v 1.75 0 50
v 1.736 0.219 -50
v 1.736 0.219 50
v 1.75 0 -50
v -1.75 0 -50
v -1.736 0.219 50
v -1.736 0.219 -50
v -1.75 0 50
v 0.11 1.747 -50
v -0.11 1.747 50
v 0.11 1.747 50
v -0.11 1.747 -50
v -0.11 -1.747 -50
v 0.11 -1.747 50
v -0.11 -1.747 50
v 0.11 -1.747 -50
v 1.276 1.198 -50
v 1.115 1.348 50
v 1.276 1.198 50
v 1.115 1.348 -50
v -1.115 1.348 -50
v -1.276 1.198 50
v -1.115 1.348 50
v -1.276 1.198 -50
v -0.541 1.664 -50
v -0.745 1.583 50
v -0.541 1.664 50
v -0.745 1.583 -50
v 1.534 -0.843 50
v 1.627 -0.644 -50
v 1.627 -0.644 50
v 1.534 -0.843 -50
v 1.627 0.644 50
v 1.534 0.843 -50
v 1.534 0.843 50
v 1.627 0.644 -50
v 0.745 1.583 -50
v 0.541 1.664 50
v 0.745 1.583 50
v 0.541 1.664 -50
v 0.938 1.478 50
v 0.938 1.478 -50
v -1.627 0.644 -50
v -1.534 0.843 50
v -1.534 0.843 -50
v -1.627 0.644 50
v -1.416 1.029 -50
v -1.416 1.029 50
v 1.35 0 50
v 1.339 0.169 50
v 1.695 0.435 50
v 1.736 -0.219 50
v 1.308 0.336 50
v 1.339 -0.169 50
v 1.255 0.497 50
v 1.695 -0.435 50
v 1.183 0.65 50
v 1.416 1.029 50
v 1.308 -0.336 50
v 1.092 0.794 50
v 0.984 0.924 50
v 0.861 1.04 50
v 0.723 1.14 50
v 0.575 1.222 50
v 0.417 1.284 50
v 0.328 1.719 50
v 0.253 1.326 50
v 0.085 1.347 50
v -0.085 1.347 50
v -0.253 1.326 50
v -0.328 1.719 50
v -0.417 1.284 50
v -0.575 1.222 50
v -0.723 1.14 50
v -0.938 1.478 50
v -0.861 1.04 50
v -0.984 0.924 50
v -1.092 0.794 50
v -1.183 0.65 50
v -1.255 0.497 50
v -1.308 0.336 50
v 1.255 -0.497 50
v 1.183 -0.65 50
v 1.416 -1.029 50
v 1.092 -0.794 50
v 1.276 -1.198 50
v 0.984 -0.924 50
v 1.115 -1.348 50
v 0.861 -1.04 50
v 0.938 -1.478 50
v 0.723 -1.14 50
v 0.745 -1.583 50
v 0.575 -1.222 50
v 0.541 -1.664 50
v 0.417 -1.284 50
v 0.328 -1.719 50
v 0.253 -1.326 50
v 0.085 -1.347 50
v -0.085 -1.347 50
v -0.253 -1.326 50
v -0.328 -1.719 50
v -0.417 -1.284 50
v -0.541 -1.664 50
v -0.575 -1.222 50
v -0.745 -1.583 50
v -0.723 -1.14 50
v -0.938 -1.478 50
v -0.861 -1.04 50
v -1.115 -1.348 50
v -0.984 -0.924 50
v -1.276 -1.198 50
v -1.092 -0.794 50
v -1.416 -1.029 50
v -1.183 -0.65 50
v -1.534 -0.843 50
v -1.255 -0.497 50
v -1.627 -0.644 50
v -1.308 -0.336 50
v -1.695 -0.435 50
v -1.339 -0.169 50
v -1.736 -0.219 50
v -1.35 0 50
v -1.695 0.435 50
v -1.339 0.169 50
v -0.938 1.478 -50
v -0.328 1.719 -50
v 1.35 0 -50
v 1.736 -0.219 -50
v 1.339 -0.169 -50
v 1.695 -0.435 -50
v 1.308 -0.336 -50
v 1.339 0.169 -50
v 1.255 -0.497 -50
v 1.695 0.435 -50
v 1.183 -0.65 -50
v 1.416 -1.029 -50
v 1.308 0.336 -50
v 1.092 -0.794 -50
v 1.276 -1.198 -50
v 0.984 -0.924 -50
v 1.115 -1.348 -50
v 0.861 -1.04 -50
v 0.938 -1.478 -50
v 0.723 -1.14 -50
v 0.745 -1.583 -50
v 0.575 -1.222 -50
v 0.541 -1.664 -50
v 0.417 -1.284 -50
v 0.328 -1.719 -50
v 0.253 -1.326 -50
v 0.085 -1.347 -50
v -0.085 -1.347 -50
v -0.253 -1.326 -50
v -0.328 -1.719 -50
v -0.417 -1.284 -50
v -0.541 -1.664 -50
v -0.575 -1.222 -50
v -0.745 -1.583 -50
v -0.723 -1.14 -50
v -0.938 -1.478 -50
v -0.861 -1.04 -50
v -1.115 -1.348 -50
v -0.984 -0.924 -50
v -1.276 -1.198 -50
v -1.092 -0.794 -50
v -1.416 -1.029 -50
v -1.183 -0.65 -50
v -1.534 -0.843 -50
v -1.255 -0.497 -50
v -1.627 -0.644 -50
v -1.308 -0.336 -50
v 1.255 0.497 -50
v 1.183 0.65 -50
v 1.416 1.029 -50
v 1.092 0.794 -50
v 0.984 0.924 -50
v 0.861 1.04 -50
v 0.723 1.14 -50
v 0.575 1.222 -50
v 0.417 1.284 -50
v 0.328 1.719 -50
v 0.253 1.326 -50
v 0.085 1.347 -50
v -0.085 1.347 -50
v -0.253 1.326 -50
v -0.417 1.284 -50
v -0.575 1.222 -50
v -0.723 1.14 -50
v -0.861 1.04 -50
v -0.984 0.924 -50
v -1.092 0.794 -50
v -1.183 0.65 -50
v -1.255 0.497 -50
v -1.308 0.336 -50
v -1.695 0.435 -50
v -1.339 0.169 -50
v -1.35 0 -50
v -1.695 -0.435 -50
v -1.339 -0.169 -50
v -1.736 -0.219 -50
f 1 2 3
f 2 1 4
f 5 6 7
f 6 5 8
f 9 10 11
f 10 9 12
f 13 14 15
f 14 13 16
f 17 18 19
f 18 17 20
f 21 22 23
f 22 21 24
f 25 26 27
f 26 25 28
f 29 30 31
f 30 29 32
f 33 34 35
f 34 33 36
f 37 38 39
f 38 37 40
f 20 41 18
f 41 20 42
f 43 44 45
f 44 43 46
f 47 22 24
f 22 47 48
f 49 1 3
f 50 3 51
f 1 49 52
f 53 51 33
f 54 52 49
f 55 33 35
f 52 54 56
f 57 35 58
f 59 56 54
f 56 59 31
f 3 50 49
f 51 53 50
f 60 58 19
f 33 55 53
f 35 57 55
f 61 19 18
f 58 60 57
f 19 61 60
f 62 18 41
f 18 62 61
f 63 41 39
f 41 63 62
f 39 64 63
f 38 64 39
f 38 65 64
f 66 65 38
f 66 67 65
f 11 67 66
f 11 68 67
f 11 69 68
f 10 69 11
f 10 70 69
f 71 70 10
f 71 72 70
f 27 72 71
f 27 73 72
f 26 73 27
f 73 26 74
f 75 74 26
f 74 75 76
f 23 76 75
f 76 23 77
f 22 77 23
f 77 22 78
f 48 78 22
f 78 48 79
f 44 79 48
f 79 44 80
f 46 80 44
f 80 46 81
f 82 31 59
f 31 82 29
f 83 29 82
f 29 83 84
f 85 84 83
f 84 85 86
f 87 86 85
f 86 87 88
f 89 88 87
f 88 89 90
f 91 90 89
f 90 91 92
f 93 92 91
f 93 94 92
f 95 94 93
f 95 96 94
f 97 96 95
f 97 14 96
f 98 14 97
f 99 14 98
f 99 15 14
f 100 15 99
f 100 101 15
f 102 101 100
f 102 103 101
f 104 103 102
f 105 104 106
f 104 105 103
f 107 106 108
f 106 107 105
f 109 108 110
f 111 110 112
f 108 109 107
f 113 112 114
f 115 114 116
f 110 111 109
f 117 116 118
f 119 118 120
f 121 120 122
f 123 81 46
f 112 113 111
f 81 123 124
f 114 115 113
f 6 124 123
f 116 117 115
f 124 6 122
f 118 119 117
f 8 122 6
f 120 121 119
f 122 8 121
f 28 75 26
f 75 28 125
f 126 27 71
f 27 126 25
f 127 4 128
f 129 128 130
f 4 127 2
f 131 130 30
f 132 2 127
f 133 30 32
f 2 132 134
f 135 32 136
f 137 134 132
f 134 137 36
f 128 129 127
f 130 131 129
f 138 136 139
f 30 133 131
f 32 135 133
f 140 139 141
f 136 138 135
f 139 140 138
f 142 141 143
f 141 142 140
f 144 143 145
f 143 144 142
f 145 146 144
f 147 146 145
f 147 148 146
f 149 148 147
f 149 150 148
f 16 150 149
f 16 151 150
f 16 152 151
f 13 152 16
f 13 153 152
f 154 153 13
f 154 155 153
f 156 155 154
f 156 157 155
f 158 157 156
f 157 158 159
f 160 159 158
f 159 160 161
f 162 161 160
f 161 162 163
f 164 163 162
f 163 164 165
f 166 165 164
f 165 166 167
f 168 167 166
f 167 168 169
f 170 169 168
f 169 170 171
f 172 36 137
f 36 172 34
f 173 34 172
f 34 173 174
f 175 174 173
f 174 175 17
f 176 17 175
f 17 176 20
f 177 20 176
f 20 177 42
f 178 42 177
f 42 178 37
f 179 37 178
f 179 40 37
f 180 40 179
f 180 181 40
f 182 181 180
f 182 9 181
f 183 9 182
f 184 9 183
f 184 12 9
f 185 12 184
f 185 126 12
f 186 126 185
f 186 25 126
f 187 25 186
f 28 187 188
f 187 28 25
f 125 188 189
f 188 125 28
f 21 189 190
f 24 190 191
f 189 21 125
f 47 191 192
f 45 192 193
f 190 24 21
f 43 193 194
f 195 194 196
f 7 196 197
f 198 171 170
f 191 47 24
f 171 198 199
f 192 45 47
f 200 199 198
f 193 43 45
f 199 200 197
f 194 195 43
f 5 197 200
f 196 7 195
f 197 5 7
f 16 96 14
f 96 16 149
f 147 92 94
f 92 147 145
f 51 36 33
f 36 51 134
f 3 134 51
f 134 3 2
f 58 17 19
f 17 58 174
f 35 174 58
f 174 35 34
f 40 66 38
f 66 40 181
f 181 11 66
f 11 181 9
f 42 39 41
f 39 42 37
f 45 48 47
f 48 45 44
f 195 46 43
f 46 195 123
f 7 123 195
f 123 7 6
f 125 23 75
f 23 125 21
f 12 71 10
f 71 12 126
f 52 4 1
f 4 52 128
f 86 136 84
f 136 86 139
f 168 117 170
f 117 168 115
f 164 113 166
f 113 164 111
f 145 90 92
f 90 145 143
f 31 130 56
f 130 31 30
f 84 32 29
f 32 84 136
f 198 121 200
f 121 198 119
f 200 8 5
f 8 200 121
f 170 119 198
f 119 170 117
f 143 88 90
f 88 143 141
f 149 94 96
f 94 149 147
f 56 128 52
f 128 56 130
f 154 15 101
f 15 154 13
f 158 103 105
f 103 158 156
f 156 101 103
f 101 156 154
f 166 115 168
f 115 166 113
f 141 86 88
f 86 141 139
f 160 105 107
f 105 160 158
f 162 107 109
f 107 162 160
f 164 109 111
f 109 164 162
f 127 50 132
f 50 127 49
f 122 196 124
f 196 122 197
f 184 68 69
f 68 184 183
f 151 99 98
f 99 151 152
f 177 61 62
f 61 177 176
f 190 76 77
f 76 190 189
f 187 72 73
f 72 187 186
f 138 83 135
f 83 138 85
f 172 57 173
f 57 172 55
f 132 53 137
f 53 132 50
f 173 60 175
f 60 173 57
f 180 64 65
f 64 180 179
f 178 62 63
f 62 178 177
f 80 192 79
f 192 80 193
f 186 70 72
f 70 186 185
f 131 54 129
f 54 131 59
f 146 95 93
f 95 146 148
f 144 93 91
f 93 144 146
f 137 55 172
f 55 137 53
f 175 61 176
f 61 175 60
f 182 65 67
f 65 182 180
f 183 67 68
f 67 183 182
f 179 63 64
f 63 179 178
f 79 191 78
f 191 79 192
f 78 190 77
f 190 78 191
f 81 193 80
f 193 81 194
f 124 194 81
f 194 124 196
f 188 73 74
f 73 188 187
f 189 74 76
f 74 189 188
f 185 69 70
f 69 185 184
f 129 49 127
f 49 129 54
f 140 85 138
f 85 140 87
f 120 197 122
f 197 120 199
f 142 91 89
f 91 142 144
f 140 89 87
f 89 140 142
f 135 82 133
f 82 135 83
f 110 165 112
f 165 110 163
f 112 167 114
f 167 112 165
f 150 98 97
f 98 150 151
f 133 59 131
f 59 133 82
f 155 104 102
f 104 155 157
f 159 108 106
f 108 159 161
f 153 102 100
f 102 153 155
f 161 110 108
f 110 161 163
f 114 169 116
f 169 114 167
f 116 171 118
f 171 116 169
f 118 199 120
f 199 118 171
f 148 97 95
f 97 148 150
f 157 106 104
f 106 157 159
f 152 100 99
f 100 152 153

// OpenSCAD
$fn = 50;


difference() {
	union() {
		translate(v = [0, 0, -50.0000000000]) {
			cylinder(h = 100, r = 1.7500000000);
		}
	}
	union() {
		translate(v = [0, 0, -100.0000000000]) {
			cylinder(h = 200, r = 1.3500000000);
		}
	}
}
